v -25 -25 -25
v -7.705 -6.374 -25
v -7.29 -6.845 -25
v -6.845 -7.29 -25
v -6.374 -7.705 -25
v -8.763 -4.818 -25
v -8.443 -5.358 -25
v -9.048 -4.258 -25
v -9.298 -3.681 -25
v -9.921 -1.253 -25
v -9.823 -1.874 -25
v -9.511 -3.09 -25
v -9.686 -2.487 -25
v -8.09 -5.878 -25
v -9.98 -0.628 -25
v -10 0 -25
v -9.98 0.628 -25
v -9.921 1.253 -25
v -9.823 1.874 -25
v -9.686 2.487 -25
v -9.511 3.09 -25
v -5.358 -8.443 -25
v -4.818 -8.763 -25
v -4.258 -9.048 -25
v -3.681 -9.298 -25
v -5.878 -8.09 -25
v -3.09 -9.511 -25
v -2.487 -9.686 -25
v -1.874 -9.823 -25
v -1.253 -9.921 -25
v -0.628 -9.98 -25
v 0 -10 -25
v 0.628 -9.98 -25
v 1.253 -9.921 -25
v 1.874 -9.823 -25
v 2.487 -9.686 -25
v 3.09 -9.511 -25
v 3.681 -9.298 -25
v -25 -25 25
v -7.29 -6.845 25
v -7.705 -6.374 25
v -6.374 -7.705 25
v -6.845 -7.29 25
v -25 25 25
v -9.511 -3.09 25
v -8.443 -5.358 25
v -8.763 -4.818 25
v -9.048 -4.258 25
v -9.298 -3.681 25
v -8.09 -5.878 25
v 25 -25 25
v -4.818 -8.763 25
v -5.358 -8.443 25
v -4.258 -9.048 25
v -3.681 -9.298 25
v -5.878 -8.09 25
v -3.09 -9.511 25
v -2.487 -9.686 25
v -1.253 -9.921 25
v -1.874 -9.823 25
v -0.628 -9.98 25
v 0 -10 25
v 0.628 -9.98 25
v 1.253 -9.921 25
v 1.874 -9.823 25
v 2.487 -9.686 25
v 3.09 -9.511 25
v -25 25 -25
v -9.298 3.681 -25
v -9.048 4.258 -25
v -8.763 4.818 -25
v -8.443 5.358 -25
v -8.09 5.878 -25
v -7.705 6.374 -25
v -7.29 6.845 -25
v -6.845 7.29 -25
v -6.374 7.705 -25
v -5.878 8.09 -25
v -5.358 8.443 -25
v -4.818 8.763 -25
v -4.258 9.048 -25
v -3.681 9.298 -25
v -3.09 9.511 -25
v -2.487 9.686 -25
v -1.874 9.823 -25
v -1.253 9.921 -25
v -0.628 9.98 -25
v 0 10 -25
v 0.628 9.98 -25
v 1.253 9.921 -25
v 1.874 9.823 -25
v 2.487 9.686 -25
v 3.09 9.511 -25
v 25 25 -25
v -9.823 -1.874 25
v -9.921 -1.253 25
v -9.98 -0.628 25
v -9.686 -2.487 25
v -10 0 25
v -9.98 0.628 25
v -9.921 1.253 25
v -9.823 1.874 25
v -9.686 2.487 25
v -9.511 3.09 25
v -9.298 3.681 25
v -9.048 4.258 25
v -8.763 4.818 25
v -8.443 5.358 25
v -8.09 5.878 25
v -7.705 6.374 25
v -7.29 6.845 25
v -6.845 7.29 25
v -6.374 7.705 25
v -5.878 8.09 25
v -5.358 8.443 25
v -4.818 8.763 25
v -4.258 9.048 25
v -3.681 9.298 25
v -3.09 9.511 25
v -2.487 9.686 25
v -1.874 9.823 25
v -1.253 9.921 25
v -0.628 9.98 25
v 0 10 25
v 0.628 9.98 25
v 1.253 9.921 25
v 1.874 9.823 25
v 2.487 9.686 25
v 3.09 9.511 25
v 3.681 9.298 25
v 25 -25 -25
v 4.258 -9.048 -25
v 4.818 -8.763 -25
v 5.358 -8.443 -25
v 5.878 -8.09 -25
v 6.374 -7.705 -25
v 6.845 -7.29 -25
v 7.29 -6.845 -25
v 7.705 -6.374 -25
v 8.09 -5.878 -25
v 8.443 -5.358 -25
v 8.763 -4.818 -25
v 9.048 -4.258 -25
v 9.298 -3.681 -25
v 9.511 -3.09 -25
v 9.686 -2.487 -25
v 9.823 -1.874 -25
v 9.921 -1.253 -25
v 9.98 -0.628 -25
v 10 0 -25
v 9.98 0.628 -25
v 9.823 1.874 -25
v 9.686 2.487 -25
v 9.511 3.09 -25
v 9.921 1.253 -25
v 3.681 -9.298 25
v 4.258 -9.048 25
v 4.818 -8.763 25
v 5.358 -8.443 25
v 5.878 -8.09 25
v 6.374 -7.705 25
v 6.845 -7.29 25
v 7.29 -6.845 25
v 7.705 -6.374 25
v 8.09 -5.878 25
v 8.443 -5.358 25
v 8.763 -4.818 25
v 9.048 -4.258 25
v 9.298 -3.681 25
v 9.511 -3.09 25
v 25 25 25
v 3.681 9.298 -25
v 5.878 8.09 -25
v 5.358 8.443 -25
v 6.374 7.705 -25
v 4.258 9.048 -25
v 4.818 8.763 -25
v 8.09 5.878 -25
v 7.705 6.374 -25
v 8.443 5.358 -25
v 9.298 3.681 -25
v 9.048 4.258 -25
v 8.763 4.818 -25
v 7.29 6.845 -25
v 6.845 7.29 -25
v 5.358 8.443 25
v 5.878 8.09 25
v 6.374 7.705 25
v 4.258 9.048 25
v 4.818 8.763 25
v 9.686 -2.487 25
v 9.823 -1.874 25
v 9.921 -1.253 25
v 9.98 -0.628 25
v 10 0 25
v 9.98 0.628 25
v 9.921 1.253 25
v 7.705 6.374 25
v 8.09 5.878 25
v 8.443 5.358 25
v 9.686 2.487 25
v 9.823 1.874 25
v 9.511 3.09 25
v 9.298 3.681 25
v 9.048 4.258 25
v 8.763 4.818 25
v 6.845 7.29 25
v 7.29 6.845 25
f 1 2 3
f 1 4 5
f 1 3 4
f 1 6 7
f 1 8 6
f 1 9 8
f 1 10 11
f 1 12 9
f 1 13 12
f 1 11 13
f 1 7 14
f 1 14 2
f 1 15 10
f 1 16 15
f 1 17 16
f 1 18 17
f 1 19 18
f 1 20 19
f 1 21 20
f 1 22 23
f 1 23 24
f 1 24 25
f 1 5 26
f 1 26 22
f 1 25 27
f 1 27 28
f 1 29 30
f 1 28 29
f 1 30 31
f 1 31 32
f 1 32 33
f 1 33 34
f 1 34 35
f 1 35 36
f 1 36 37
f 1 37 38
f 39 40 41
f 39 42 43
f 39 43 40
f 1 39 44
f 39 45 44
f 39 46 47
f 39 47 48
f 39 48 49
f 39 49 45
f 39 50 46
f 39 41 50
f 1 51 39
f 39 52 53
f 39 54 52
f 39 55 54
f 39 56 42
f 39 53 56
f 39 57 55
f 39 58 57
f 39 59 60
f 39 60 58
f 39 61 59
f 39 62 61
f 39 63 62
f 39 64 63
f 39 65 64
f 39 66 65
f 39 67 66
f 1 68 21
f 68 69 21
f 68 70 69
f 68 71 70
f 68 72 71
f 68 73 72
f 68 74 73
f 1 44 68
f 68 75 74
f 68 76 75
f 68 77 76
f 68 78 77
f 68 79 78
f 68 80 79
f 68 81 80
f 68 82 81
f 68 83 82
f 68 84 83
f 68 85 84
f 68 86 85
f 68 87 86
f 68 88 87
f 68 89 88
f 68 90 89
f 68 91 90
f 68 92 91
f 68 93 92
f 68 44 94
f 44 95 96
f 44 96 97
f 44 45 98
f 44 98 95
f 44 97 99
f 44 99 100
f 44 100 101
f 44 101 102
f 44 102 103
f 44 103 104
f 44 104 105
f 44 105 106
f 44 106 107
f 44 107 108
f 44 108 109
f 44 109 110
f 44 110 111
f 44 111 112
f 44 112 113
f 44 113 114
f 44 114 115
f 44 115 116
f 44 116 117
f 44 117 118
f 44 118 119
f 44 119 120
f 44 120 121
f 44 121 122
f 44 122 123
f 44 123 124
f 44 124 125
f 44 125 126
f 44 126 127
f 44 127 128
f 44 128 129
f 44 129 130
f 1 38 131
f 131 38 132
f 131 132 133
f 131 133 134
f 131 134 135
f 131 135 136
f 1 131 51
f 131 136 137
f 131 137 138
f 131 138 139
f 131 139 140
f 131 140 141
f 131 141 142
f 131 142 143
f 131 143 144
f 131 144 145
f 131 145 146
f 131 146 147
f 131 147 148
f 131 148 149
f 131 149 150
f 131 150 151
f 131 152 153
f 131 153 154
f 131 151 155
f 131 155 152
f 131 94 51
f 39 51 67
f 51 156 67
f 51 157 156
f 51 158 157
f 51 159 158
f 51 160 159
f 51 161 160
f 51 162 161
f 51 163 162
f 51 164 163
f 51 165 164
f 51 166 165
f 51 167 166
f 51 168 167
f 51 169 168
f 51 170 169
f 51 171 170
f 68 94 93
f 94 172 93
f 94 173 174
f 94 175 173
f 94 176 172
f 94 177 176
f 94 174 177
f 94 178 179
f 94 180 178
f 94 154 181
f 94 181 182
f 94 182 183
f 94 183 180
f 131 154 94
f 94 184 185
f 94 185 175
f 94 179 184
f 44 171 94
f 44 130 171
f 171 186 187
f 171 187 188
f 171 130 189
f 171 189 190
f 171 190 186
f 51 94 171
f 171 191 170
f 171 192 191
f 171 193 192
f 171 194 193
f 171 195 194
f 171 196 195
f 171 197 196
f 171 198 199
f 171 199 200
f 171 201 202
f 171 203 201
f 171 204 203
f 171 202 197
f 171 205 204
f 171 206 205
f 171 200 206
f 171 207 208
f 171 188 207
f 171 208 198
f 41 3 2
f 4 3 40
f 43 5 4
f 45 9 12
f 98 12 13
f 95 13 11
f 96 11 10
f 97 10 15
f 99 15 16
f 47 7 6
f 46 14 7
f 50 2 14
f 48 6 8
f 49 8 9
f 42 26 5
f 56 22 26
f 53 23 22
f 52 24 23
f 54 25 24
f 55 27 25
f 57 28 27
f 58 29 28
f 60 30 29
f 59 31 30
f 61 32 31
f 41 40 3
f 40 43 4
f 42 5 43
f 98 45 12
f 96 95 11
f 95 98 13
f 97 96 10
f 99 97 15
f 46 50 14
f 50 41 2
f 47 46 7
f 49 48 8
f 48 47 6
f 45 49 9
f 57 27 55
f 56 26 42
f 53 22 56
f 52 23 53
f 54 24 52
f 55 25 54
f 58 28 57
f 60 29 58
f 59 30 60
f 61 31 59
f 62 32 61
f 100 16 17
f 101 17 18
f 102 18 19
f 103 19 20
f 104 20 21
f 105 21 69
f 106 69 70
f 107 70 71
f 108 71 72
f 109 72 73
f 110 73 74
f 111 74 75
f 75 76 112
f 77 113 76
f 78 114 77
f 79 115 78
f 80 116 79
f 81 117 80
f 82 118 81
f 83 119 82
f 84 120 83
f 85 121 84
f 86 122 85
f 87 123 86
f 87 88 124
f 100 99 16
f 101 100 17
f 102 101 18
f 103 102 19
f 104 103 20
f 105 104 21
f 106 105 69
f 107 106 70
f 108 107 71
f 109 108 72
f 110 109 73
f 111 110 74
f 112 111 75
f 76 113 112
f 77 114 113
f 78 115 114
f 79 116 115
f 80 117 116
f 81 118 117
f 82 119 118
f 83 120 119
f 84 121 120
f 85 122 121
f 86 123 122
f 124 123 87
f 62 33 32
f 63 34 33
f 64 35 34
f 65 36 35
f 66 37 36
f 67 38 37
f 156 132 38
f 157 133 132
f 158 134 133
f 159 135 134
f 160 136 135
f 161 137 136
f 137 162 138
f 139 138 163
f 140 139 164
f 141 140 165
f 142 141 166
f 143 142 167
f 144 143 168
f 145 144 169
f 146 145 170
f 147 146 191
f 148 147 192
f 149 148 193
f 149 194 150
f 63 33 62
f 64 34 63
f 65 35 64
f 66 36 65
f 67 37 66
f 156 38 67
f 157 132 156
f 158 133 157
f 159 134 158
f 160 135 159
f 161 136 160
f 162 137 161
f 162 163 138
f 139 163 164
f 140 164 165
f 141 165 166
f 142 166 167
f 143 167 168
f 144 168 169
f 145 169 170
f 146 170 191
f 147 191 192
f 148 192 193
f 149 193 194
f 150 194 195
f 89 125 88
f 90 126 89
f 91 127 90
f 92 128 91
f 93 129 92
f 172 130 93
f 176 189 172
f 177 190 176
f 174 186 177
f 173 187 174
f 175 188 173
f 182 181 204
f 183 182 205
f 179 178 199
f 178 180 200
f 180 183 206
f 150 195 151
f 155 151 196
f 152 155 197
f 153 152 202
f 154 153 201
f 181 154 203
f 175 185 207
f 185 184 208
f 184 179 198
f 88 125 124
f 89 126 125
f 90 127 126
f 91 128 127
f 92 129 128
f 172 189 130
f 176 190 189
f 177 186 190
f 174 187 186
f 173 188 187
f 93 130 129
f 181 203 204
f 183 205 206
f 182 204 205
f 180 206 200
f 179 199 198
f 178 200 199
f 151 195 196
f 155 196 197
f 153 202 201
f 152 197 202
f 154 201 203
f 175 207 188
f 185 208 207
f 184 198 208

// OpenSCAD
difference() {
    // 50mm角の立方体（中心に配置）
    cube(50, center = true);

    // 直径20mmの貫通穴（z軸方向）
    // 確実に貫通させるため、高さを少し（52mm）大きくしています
    cylinder(h = 52, d = 20, center = true, $fn = 100);
}
